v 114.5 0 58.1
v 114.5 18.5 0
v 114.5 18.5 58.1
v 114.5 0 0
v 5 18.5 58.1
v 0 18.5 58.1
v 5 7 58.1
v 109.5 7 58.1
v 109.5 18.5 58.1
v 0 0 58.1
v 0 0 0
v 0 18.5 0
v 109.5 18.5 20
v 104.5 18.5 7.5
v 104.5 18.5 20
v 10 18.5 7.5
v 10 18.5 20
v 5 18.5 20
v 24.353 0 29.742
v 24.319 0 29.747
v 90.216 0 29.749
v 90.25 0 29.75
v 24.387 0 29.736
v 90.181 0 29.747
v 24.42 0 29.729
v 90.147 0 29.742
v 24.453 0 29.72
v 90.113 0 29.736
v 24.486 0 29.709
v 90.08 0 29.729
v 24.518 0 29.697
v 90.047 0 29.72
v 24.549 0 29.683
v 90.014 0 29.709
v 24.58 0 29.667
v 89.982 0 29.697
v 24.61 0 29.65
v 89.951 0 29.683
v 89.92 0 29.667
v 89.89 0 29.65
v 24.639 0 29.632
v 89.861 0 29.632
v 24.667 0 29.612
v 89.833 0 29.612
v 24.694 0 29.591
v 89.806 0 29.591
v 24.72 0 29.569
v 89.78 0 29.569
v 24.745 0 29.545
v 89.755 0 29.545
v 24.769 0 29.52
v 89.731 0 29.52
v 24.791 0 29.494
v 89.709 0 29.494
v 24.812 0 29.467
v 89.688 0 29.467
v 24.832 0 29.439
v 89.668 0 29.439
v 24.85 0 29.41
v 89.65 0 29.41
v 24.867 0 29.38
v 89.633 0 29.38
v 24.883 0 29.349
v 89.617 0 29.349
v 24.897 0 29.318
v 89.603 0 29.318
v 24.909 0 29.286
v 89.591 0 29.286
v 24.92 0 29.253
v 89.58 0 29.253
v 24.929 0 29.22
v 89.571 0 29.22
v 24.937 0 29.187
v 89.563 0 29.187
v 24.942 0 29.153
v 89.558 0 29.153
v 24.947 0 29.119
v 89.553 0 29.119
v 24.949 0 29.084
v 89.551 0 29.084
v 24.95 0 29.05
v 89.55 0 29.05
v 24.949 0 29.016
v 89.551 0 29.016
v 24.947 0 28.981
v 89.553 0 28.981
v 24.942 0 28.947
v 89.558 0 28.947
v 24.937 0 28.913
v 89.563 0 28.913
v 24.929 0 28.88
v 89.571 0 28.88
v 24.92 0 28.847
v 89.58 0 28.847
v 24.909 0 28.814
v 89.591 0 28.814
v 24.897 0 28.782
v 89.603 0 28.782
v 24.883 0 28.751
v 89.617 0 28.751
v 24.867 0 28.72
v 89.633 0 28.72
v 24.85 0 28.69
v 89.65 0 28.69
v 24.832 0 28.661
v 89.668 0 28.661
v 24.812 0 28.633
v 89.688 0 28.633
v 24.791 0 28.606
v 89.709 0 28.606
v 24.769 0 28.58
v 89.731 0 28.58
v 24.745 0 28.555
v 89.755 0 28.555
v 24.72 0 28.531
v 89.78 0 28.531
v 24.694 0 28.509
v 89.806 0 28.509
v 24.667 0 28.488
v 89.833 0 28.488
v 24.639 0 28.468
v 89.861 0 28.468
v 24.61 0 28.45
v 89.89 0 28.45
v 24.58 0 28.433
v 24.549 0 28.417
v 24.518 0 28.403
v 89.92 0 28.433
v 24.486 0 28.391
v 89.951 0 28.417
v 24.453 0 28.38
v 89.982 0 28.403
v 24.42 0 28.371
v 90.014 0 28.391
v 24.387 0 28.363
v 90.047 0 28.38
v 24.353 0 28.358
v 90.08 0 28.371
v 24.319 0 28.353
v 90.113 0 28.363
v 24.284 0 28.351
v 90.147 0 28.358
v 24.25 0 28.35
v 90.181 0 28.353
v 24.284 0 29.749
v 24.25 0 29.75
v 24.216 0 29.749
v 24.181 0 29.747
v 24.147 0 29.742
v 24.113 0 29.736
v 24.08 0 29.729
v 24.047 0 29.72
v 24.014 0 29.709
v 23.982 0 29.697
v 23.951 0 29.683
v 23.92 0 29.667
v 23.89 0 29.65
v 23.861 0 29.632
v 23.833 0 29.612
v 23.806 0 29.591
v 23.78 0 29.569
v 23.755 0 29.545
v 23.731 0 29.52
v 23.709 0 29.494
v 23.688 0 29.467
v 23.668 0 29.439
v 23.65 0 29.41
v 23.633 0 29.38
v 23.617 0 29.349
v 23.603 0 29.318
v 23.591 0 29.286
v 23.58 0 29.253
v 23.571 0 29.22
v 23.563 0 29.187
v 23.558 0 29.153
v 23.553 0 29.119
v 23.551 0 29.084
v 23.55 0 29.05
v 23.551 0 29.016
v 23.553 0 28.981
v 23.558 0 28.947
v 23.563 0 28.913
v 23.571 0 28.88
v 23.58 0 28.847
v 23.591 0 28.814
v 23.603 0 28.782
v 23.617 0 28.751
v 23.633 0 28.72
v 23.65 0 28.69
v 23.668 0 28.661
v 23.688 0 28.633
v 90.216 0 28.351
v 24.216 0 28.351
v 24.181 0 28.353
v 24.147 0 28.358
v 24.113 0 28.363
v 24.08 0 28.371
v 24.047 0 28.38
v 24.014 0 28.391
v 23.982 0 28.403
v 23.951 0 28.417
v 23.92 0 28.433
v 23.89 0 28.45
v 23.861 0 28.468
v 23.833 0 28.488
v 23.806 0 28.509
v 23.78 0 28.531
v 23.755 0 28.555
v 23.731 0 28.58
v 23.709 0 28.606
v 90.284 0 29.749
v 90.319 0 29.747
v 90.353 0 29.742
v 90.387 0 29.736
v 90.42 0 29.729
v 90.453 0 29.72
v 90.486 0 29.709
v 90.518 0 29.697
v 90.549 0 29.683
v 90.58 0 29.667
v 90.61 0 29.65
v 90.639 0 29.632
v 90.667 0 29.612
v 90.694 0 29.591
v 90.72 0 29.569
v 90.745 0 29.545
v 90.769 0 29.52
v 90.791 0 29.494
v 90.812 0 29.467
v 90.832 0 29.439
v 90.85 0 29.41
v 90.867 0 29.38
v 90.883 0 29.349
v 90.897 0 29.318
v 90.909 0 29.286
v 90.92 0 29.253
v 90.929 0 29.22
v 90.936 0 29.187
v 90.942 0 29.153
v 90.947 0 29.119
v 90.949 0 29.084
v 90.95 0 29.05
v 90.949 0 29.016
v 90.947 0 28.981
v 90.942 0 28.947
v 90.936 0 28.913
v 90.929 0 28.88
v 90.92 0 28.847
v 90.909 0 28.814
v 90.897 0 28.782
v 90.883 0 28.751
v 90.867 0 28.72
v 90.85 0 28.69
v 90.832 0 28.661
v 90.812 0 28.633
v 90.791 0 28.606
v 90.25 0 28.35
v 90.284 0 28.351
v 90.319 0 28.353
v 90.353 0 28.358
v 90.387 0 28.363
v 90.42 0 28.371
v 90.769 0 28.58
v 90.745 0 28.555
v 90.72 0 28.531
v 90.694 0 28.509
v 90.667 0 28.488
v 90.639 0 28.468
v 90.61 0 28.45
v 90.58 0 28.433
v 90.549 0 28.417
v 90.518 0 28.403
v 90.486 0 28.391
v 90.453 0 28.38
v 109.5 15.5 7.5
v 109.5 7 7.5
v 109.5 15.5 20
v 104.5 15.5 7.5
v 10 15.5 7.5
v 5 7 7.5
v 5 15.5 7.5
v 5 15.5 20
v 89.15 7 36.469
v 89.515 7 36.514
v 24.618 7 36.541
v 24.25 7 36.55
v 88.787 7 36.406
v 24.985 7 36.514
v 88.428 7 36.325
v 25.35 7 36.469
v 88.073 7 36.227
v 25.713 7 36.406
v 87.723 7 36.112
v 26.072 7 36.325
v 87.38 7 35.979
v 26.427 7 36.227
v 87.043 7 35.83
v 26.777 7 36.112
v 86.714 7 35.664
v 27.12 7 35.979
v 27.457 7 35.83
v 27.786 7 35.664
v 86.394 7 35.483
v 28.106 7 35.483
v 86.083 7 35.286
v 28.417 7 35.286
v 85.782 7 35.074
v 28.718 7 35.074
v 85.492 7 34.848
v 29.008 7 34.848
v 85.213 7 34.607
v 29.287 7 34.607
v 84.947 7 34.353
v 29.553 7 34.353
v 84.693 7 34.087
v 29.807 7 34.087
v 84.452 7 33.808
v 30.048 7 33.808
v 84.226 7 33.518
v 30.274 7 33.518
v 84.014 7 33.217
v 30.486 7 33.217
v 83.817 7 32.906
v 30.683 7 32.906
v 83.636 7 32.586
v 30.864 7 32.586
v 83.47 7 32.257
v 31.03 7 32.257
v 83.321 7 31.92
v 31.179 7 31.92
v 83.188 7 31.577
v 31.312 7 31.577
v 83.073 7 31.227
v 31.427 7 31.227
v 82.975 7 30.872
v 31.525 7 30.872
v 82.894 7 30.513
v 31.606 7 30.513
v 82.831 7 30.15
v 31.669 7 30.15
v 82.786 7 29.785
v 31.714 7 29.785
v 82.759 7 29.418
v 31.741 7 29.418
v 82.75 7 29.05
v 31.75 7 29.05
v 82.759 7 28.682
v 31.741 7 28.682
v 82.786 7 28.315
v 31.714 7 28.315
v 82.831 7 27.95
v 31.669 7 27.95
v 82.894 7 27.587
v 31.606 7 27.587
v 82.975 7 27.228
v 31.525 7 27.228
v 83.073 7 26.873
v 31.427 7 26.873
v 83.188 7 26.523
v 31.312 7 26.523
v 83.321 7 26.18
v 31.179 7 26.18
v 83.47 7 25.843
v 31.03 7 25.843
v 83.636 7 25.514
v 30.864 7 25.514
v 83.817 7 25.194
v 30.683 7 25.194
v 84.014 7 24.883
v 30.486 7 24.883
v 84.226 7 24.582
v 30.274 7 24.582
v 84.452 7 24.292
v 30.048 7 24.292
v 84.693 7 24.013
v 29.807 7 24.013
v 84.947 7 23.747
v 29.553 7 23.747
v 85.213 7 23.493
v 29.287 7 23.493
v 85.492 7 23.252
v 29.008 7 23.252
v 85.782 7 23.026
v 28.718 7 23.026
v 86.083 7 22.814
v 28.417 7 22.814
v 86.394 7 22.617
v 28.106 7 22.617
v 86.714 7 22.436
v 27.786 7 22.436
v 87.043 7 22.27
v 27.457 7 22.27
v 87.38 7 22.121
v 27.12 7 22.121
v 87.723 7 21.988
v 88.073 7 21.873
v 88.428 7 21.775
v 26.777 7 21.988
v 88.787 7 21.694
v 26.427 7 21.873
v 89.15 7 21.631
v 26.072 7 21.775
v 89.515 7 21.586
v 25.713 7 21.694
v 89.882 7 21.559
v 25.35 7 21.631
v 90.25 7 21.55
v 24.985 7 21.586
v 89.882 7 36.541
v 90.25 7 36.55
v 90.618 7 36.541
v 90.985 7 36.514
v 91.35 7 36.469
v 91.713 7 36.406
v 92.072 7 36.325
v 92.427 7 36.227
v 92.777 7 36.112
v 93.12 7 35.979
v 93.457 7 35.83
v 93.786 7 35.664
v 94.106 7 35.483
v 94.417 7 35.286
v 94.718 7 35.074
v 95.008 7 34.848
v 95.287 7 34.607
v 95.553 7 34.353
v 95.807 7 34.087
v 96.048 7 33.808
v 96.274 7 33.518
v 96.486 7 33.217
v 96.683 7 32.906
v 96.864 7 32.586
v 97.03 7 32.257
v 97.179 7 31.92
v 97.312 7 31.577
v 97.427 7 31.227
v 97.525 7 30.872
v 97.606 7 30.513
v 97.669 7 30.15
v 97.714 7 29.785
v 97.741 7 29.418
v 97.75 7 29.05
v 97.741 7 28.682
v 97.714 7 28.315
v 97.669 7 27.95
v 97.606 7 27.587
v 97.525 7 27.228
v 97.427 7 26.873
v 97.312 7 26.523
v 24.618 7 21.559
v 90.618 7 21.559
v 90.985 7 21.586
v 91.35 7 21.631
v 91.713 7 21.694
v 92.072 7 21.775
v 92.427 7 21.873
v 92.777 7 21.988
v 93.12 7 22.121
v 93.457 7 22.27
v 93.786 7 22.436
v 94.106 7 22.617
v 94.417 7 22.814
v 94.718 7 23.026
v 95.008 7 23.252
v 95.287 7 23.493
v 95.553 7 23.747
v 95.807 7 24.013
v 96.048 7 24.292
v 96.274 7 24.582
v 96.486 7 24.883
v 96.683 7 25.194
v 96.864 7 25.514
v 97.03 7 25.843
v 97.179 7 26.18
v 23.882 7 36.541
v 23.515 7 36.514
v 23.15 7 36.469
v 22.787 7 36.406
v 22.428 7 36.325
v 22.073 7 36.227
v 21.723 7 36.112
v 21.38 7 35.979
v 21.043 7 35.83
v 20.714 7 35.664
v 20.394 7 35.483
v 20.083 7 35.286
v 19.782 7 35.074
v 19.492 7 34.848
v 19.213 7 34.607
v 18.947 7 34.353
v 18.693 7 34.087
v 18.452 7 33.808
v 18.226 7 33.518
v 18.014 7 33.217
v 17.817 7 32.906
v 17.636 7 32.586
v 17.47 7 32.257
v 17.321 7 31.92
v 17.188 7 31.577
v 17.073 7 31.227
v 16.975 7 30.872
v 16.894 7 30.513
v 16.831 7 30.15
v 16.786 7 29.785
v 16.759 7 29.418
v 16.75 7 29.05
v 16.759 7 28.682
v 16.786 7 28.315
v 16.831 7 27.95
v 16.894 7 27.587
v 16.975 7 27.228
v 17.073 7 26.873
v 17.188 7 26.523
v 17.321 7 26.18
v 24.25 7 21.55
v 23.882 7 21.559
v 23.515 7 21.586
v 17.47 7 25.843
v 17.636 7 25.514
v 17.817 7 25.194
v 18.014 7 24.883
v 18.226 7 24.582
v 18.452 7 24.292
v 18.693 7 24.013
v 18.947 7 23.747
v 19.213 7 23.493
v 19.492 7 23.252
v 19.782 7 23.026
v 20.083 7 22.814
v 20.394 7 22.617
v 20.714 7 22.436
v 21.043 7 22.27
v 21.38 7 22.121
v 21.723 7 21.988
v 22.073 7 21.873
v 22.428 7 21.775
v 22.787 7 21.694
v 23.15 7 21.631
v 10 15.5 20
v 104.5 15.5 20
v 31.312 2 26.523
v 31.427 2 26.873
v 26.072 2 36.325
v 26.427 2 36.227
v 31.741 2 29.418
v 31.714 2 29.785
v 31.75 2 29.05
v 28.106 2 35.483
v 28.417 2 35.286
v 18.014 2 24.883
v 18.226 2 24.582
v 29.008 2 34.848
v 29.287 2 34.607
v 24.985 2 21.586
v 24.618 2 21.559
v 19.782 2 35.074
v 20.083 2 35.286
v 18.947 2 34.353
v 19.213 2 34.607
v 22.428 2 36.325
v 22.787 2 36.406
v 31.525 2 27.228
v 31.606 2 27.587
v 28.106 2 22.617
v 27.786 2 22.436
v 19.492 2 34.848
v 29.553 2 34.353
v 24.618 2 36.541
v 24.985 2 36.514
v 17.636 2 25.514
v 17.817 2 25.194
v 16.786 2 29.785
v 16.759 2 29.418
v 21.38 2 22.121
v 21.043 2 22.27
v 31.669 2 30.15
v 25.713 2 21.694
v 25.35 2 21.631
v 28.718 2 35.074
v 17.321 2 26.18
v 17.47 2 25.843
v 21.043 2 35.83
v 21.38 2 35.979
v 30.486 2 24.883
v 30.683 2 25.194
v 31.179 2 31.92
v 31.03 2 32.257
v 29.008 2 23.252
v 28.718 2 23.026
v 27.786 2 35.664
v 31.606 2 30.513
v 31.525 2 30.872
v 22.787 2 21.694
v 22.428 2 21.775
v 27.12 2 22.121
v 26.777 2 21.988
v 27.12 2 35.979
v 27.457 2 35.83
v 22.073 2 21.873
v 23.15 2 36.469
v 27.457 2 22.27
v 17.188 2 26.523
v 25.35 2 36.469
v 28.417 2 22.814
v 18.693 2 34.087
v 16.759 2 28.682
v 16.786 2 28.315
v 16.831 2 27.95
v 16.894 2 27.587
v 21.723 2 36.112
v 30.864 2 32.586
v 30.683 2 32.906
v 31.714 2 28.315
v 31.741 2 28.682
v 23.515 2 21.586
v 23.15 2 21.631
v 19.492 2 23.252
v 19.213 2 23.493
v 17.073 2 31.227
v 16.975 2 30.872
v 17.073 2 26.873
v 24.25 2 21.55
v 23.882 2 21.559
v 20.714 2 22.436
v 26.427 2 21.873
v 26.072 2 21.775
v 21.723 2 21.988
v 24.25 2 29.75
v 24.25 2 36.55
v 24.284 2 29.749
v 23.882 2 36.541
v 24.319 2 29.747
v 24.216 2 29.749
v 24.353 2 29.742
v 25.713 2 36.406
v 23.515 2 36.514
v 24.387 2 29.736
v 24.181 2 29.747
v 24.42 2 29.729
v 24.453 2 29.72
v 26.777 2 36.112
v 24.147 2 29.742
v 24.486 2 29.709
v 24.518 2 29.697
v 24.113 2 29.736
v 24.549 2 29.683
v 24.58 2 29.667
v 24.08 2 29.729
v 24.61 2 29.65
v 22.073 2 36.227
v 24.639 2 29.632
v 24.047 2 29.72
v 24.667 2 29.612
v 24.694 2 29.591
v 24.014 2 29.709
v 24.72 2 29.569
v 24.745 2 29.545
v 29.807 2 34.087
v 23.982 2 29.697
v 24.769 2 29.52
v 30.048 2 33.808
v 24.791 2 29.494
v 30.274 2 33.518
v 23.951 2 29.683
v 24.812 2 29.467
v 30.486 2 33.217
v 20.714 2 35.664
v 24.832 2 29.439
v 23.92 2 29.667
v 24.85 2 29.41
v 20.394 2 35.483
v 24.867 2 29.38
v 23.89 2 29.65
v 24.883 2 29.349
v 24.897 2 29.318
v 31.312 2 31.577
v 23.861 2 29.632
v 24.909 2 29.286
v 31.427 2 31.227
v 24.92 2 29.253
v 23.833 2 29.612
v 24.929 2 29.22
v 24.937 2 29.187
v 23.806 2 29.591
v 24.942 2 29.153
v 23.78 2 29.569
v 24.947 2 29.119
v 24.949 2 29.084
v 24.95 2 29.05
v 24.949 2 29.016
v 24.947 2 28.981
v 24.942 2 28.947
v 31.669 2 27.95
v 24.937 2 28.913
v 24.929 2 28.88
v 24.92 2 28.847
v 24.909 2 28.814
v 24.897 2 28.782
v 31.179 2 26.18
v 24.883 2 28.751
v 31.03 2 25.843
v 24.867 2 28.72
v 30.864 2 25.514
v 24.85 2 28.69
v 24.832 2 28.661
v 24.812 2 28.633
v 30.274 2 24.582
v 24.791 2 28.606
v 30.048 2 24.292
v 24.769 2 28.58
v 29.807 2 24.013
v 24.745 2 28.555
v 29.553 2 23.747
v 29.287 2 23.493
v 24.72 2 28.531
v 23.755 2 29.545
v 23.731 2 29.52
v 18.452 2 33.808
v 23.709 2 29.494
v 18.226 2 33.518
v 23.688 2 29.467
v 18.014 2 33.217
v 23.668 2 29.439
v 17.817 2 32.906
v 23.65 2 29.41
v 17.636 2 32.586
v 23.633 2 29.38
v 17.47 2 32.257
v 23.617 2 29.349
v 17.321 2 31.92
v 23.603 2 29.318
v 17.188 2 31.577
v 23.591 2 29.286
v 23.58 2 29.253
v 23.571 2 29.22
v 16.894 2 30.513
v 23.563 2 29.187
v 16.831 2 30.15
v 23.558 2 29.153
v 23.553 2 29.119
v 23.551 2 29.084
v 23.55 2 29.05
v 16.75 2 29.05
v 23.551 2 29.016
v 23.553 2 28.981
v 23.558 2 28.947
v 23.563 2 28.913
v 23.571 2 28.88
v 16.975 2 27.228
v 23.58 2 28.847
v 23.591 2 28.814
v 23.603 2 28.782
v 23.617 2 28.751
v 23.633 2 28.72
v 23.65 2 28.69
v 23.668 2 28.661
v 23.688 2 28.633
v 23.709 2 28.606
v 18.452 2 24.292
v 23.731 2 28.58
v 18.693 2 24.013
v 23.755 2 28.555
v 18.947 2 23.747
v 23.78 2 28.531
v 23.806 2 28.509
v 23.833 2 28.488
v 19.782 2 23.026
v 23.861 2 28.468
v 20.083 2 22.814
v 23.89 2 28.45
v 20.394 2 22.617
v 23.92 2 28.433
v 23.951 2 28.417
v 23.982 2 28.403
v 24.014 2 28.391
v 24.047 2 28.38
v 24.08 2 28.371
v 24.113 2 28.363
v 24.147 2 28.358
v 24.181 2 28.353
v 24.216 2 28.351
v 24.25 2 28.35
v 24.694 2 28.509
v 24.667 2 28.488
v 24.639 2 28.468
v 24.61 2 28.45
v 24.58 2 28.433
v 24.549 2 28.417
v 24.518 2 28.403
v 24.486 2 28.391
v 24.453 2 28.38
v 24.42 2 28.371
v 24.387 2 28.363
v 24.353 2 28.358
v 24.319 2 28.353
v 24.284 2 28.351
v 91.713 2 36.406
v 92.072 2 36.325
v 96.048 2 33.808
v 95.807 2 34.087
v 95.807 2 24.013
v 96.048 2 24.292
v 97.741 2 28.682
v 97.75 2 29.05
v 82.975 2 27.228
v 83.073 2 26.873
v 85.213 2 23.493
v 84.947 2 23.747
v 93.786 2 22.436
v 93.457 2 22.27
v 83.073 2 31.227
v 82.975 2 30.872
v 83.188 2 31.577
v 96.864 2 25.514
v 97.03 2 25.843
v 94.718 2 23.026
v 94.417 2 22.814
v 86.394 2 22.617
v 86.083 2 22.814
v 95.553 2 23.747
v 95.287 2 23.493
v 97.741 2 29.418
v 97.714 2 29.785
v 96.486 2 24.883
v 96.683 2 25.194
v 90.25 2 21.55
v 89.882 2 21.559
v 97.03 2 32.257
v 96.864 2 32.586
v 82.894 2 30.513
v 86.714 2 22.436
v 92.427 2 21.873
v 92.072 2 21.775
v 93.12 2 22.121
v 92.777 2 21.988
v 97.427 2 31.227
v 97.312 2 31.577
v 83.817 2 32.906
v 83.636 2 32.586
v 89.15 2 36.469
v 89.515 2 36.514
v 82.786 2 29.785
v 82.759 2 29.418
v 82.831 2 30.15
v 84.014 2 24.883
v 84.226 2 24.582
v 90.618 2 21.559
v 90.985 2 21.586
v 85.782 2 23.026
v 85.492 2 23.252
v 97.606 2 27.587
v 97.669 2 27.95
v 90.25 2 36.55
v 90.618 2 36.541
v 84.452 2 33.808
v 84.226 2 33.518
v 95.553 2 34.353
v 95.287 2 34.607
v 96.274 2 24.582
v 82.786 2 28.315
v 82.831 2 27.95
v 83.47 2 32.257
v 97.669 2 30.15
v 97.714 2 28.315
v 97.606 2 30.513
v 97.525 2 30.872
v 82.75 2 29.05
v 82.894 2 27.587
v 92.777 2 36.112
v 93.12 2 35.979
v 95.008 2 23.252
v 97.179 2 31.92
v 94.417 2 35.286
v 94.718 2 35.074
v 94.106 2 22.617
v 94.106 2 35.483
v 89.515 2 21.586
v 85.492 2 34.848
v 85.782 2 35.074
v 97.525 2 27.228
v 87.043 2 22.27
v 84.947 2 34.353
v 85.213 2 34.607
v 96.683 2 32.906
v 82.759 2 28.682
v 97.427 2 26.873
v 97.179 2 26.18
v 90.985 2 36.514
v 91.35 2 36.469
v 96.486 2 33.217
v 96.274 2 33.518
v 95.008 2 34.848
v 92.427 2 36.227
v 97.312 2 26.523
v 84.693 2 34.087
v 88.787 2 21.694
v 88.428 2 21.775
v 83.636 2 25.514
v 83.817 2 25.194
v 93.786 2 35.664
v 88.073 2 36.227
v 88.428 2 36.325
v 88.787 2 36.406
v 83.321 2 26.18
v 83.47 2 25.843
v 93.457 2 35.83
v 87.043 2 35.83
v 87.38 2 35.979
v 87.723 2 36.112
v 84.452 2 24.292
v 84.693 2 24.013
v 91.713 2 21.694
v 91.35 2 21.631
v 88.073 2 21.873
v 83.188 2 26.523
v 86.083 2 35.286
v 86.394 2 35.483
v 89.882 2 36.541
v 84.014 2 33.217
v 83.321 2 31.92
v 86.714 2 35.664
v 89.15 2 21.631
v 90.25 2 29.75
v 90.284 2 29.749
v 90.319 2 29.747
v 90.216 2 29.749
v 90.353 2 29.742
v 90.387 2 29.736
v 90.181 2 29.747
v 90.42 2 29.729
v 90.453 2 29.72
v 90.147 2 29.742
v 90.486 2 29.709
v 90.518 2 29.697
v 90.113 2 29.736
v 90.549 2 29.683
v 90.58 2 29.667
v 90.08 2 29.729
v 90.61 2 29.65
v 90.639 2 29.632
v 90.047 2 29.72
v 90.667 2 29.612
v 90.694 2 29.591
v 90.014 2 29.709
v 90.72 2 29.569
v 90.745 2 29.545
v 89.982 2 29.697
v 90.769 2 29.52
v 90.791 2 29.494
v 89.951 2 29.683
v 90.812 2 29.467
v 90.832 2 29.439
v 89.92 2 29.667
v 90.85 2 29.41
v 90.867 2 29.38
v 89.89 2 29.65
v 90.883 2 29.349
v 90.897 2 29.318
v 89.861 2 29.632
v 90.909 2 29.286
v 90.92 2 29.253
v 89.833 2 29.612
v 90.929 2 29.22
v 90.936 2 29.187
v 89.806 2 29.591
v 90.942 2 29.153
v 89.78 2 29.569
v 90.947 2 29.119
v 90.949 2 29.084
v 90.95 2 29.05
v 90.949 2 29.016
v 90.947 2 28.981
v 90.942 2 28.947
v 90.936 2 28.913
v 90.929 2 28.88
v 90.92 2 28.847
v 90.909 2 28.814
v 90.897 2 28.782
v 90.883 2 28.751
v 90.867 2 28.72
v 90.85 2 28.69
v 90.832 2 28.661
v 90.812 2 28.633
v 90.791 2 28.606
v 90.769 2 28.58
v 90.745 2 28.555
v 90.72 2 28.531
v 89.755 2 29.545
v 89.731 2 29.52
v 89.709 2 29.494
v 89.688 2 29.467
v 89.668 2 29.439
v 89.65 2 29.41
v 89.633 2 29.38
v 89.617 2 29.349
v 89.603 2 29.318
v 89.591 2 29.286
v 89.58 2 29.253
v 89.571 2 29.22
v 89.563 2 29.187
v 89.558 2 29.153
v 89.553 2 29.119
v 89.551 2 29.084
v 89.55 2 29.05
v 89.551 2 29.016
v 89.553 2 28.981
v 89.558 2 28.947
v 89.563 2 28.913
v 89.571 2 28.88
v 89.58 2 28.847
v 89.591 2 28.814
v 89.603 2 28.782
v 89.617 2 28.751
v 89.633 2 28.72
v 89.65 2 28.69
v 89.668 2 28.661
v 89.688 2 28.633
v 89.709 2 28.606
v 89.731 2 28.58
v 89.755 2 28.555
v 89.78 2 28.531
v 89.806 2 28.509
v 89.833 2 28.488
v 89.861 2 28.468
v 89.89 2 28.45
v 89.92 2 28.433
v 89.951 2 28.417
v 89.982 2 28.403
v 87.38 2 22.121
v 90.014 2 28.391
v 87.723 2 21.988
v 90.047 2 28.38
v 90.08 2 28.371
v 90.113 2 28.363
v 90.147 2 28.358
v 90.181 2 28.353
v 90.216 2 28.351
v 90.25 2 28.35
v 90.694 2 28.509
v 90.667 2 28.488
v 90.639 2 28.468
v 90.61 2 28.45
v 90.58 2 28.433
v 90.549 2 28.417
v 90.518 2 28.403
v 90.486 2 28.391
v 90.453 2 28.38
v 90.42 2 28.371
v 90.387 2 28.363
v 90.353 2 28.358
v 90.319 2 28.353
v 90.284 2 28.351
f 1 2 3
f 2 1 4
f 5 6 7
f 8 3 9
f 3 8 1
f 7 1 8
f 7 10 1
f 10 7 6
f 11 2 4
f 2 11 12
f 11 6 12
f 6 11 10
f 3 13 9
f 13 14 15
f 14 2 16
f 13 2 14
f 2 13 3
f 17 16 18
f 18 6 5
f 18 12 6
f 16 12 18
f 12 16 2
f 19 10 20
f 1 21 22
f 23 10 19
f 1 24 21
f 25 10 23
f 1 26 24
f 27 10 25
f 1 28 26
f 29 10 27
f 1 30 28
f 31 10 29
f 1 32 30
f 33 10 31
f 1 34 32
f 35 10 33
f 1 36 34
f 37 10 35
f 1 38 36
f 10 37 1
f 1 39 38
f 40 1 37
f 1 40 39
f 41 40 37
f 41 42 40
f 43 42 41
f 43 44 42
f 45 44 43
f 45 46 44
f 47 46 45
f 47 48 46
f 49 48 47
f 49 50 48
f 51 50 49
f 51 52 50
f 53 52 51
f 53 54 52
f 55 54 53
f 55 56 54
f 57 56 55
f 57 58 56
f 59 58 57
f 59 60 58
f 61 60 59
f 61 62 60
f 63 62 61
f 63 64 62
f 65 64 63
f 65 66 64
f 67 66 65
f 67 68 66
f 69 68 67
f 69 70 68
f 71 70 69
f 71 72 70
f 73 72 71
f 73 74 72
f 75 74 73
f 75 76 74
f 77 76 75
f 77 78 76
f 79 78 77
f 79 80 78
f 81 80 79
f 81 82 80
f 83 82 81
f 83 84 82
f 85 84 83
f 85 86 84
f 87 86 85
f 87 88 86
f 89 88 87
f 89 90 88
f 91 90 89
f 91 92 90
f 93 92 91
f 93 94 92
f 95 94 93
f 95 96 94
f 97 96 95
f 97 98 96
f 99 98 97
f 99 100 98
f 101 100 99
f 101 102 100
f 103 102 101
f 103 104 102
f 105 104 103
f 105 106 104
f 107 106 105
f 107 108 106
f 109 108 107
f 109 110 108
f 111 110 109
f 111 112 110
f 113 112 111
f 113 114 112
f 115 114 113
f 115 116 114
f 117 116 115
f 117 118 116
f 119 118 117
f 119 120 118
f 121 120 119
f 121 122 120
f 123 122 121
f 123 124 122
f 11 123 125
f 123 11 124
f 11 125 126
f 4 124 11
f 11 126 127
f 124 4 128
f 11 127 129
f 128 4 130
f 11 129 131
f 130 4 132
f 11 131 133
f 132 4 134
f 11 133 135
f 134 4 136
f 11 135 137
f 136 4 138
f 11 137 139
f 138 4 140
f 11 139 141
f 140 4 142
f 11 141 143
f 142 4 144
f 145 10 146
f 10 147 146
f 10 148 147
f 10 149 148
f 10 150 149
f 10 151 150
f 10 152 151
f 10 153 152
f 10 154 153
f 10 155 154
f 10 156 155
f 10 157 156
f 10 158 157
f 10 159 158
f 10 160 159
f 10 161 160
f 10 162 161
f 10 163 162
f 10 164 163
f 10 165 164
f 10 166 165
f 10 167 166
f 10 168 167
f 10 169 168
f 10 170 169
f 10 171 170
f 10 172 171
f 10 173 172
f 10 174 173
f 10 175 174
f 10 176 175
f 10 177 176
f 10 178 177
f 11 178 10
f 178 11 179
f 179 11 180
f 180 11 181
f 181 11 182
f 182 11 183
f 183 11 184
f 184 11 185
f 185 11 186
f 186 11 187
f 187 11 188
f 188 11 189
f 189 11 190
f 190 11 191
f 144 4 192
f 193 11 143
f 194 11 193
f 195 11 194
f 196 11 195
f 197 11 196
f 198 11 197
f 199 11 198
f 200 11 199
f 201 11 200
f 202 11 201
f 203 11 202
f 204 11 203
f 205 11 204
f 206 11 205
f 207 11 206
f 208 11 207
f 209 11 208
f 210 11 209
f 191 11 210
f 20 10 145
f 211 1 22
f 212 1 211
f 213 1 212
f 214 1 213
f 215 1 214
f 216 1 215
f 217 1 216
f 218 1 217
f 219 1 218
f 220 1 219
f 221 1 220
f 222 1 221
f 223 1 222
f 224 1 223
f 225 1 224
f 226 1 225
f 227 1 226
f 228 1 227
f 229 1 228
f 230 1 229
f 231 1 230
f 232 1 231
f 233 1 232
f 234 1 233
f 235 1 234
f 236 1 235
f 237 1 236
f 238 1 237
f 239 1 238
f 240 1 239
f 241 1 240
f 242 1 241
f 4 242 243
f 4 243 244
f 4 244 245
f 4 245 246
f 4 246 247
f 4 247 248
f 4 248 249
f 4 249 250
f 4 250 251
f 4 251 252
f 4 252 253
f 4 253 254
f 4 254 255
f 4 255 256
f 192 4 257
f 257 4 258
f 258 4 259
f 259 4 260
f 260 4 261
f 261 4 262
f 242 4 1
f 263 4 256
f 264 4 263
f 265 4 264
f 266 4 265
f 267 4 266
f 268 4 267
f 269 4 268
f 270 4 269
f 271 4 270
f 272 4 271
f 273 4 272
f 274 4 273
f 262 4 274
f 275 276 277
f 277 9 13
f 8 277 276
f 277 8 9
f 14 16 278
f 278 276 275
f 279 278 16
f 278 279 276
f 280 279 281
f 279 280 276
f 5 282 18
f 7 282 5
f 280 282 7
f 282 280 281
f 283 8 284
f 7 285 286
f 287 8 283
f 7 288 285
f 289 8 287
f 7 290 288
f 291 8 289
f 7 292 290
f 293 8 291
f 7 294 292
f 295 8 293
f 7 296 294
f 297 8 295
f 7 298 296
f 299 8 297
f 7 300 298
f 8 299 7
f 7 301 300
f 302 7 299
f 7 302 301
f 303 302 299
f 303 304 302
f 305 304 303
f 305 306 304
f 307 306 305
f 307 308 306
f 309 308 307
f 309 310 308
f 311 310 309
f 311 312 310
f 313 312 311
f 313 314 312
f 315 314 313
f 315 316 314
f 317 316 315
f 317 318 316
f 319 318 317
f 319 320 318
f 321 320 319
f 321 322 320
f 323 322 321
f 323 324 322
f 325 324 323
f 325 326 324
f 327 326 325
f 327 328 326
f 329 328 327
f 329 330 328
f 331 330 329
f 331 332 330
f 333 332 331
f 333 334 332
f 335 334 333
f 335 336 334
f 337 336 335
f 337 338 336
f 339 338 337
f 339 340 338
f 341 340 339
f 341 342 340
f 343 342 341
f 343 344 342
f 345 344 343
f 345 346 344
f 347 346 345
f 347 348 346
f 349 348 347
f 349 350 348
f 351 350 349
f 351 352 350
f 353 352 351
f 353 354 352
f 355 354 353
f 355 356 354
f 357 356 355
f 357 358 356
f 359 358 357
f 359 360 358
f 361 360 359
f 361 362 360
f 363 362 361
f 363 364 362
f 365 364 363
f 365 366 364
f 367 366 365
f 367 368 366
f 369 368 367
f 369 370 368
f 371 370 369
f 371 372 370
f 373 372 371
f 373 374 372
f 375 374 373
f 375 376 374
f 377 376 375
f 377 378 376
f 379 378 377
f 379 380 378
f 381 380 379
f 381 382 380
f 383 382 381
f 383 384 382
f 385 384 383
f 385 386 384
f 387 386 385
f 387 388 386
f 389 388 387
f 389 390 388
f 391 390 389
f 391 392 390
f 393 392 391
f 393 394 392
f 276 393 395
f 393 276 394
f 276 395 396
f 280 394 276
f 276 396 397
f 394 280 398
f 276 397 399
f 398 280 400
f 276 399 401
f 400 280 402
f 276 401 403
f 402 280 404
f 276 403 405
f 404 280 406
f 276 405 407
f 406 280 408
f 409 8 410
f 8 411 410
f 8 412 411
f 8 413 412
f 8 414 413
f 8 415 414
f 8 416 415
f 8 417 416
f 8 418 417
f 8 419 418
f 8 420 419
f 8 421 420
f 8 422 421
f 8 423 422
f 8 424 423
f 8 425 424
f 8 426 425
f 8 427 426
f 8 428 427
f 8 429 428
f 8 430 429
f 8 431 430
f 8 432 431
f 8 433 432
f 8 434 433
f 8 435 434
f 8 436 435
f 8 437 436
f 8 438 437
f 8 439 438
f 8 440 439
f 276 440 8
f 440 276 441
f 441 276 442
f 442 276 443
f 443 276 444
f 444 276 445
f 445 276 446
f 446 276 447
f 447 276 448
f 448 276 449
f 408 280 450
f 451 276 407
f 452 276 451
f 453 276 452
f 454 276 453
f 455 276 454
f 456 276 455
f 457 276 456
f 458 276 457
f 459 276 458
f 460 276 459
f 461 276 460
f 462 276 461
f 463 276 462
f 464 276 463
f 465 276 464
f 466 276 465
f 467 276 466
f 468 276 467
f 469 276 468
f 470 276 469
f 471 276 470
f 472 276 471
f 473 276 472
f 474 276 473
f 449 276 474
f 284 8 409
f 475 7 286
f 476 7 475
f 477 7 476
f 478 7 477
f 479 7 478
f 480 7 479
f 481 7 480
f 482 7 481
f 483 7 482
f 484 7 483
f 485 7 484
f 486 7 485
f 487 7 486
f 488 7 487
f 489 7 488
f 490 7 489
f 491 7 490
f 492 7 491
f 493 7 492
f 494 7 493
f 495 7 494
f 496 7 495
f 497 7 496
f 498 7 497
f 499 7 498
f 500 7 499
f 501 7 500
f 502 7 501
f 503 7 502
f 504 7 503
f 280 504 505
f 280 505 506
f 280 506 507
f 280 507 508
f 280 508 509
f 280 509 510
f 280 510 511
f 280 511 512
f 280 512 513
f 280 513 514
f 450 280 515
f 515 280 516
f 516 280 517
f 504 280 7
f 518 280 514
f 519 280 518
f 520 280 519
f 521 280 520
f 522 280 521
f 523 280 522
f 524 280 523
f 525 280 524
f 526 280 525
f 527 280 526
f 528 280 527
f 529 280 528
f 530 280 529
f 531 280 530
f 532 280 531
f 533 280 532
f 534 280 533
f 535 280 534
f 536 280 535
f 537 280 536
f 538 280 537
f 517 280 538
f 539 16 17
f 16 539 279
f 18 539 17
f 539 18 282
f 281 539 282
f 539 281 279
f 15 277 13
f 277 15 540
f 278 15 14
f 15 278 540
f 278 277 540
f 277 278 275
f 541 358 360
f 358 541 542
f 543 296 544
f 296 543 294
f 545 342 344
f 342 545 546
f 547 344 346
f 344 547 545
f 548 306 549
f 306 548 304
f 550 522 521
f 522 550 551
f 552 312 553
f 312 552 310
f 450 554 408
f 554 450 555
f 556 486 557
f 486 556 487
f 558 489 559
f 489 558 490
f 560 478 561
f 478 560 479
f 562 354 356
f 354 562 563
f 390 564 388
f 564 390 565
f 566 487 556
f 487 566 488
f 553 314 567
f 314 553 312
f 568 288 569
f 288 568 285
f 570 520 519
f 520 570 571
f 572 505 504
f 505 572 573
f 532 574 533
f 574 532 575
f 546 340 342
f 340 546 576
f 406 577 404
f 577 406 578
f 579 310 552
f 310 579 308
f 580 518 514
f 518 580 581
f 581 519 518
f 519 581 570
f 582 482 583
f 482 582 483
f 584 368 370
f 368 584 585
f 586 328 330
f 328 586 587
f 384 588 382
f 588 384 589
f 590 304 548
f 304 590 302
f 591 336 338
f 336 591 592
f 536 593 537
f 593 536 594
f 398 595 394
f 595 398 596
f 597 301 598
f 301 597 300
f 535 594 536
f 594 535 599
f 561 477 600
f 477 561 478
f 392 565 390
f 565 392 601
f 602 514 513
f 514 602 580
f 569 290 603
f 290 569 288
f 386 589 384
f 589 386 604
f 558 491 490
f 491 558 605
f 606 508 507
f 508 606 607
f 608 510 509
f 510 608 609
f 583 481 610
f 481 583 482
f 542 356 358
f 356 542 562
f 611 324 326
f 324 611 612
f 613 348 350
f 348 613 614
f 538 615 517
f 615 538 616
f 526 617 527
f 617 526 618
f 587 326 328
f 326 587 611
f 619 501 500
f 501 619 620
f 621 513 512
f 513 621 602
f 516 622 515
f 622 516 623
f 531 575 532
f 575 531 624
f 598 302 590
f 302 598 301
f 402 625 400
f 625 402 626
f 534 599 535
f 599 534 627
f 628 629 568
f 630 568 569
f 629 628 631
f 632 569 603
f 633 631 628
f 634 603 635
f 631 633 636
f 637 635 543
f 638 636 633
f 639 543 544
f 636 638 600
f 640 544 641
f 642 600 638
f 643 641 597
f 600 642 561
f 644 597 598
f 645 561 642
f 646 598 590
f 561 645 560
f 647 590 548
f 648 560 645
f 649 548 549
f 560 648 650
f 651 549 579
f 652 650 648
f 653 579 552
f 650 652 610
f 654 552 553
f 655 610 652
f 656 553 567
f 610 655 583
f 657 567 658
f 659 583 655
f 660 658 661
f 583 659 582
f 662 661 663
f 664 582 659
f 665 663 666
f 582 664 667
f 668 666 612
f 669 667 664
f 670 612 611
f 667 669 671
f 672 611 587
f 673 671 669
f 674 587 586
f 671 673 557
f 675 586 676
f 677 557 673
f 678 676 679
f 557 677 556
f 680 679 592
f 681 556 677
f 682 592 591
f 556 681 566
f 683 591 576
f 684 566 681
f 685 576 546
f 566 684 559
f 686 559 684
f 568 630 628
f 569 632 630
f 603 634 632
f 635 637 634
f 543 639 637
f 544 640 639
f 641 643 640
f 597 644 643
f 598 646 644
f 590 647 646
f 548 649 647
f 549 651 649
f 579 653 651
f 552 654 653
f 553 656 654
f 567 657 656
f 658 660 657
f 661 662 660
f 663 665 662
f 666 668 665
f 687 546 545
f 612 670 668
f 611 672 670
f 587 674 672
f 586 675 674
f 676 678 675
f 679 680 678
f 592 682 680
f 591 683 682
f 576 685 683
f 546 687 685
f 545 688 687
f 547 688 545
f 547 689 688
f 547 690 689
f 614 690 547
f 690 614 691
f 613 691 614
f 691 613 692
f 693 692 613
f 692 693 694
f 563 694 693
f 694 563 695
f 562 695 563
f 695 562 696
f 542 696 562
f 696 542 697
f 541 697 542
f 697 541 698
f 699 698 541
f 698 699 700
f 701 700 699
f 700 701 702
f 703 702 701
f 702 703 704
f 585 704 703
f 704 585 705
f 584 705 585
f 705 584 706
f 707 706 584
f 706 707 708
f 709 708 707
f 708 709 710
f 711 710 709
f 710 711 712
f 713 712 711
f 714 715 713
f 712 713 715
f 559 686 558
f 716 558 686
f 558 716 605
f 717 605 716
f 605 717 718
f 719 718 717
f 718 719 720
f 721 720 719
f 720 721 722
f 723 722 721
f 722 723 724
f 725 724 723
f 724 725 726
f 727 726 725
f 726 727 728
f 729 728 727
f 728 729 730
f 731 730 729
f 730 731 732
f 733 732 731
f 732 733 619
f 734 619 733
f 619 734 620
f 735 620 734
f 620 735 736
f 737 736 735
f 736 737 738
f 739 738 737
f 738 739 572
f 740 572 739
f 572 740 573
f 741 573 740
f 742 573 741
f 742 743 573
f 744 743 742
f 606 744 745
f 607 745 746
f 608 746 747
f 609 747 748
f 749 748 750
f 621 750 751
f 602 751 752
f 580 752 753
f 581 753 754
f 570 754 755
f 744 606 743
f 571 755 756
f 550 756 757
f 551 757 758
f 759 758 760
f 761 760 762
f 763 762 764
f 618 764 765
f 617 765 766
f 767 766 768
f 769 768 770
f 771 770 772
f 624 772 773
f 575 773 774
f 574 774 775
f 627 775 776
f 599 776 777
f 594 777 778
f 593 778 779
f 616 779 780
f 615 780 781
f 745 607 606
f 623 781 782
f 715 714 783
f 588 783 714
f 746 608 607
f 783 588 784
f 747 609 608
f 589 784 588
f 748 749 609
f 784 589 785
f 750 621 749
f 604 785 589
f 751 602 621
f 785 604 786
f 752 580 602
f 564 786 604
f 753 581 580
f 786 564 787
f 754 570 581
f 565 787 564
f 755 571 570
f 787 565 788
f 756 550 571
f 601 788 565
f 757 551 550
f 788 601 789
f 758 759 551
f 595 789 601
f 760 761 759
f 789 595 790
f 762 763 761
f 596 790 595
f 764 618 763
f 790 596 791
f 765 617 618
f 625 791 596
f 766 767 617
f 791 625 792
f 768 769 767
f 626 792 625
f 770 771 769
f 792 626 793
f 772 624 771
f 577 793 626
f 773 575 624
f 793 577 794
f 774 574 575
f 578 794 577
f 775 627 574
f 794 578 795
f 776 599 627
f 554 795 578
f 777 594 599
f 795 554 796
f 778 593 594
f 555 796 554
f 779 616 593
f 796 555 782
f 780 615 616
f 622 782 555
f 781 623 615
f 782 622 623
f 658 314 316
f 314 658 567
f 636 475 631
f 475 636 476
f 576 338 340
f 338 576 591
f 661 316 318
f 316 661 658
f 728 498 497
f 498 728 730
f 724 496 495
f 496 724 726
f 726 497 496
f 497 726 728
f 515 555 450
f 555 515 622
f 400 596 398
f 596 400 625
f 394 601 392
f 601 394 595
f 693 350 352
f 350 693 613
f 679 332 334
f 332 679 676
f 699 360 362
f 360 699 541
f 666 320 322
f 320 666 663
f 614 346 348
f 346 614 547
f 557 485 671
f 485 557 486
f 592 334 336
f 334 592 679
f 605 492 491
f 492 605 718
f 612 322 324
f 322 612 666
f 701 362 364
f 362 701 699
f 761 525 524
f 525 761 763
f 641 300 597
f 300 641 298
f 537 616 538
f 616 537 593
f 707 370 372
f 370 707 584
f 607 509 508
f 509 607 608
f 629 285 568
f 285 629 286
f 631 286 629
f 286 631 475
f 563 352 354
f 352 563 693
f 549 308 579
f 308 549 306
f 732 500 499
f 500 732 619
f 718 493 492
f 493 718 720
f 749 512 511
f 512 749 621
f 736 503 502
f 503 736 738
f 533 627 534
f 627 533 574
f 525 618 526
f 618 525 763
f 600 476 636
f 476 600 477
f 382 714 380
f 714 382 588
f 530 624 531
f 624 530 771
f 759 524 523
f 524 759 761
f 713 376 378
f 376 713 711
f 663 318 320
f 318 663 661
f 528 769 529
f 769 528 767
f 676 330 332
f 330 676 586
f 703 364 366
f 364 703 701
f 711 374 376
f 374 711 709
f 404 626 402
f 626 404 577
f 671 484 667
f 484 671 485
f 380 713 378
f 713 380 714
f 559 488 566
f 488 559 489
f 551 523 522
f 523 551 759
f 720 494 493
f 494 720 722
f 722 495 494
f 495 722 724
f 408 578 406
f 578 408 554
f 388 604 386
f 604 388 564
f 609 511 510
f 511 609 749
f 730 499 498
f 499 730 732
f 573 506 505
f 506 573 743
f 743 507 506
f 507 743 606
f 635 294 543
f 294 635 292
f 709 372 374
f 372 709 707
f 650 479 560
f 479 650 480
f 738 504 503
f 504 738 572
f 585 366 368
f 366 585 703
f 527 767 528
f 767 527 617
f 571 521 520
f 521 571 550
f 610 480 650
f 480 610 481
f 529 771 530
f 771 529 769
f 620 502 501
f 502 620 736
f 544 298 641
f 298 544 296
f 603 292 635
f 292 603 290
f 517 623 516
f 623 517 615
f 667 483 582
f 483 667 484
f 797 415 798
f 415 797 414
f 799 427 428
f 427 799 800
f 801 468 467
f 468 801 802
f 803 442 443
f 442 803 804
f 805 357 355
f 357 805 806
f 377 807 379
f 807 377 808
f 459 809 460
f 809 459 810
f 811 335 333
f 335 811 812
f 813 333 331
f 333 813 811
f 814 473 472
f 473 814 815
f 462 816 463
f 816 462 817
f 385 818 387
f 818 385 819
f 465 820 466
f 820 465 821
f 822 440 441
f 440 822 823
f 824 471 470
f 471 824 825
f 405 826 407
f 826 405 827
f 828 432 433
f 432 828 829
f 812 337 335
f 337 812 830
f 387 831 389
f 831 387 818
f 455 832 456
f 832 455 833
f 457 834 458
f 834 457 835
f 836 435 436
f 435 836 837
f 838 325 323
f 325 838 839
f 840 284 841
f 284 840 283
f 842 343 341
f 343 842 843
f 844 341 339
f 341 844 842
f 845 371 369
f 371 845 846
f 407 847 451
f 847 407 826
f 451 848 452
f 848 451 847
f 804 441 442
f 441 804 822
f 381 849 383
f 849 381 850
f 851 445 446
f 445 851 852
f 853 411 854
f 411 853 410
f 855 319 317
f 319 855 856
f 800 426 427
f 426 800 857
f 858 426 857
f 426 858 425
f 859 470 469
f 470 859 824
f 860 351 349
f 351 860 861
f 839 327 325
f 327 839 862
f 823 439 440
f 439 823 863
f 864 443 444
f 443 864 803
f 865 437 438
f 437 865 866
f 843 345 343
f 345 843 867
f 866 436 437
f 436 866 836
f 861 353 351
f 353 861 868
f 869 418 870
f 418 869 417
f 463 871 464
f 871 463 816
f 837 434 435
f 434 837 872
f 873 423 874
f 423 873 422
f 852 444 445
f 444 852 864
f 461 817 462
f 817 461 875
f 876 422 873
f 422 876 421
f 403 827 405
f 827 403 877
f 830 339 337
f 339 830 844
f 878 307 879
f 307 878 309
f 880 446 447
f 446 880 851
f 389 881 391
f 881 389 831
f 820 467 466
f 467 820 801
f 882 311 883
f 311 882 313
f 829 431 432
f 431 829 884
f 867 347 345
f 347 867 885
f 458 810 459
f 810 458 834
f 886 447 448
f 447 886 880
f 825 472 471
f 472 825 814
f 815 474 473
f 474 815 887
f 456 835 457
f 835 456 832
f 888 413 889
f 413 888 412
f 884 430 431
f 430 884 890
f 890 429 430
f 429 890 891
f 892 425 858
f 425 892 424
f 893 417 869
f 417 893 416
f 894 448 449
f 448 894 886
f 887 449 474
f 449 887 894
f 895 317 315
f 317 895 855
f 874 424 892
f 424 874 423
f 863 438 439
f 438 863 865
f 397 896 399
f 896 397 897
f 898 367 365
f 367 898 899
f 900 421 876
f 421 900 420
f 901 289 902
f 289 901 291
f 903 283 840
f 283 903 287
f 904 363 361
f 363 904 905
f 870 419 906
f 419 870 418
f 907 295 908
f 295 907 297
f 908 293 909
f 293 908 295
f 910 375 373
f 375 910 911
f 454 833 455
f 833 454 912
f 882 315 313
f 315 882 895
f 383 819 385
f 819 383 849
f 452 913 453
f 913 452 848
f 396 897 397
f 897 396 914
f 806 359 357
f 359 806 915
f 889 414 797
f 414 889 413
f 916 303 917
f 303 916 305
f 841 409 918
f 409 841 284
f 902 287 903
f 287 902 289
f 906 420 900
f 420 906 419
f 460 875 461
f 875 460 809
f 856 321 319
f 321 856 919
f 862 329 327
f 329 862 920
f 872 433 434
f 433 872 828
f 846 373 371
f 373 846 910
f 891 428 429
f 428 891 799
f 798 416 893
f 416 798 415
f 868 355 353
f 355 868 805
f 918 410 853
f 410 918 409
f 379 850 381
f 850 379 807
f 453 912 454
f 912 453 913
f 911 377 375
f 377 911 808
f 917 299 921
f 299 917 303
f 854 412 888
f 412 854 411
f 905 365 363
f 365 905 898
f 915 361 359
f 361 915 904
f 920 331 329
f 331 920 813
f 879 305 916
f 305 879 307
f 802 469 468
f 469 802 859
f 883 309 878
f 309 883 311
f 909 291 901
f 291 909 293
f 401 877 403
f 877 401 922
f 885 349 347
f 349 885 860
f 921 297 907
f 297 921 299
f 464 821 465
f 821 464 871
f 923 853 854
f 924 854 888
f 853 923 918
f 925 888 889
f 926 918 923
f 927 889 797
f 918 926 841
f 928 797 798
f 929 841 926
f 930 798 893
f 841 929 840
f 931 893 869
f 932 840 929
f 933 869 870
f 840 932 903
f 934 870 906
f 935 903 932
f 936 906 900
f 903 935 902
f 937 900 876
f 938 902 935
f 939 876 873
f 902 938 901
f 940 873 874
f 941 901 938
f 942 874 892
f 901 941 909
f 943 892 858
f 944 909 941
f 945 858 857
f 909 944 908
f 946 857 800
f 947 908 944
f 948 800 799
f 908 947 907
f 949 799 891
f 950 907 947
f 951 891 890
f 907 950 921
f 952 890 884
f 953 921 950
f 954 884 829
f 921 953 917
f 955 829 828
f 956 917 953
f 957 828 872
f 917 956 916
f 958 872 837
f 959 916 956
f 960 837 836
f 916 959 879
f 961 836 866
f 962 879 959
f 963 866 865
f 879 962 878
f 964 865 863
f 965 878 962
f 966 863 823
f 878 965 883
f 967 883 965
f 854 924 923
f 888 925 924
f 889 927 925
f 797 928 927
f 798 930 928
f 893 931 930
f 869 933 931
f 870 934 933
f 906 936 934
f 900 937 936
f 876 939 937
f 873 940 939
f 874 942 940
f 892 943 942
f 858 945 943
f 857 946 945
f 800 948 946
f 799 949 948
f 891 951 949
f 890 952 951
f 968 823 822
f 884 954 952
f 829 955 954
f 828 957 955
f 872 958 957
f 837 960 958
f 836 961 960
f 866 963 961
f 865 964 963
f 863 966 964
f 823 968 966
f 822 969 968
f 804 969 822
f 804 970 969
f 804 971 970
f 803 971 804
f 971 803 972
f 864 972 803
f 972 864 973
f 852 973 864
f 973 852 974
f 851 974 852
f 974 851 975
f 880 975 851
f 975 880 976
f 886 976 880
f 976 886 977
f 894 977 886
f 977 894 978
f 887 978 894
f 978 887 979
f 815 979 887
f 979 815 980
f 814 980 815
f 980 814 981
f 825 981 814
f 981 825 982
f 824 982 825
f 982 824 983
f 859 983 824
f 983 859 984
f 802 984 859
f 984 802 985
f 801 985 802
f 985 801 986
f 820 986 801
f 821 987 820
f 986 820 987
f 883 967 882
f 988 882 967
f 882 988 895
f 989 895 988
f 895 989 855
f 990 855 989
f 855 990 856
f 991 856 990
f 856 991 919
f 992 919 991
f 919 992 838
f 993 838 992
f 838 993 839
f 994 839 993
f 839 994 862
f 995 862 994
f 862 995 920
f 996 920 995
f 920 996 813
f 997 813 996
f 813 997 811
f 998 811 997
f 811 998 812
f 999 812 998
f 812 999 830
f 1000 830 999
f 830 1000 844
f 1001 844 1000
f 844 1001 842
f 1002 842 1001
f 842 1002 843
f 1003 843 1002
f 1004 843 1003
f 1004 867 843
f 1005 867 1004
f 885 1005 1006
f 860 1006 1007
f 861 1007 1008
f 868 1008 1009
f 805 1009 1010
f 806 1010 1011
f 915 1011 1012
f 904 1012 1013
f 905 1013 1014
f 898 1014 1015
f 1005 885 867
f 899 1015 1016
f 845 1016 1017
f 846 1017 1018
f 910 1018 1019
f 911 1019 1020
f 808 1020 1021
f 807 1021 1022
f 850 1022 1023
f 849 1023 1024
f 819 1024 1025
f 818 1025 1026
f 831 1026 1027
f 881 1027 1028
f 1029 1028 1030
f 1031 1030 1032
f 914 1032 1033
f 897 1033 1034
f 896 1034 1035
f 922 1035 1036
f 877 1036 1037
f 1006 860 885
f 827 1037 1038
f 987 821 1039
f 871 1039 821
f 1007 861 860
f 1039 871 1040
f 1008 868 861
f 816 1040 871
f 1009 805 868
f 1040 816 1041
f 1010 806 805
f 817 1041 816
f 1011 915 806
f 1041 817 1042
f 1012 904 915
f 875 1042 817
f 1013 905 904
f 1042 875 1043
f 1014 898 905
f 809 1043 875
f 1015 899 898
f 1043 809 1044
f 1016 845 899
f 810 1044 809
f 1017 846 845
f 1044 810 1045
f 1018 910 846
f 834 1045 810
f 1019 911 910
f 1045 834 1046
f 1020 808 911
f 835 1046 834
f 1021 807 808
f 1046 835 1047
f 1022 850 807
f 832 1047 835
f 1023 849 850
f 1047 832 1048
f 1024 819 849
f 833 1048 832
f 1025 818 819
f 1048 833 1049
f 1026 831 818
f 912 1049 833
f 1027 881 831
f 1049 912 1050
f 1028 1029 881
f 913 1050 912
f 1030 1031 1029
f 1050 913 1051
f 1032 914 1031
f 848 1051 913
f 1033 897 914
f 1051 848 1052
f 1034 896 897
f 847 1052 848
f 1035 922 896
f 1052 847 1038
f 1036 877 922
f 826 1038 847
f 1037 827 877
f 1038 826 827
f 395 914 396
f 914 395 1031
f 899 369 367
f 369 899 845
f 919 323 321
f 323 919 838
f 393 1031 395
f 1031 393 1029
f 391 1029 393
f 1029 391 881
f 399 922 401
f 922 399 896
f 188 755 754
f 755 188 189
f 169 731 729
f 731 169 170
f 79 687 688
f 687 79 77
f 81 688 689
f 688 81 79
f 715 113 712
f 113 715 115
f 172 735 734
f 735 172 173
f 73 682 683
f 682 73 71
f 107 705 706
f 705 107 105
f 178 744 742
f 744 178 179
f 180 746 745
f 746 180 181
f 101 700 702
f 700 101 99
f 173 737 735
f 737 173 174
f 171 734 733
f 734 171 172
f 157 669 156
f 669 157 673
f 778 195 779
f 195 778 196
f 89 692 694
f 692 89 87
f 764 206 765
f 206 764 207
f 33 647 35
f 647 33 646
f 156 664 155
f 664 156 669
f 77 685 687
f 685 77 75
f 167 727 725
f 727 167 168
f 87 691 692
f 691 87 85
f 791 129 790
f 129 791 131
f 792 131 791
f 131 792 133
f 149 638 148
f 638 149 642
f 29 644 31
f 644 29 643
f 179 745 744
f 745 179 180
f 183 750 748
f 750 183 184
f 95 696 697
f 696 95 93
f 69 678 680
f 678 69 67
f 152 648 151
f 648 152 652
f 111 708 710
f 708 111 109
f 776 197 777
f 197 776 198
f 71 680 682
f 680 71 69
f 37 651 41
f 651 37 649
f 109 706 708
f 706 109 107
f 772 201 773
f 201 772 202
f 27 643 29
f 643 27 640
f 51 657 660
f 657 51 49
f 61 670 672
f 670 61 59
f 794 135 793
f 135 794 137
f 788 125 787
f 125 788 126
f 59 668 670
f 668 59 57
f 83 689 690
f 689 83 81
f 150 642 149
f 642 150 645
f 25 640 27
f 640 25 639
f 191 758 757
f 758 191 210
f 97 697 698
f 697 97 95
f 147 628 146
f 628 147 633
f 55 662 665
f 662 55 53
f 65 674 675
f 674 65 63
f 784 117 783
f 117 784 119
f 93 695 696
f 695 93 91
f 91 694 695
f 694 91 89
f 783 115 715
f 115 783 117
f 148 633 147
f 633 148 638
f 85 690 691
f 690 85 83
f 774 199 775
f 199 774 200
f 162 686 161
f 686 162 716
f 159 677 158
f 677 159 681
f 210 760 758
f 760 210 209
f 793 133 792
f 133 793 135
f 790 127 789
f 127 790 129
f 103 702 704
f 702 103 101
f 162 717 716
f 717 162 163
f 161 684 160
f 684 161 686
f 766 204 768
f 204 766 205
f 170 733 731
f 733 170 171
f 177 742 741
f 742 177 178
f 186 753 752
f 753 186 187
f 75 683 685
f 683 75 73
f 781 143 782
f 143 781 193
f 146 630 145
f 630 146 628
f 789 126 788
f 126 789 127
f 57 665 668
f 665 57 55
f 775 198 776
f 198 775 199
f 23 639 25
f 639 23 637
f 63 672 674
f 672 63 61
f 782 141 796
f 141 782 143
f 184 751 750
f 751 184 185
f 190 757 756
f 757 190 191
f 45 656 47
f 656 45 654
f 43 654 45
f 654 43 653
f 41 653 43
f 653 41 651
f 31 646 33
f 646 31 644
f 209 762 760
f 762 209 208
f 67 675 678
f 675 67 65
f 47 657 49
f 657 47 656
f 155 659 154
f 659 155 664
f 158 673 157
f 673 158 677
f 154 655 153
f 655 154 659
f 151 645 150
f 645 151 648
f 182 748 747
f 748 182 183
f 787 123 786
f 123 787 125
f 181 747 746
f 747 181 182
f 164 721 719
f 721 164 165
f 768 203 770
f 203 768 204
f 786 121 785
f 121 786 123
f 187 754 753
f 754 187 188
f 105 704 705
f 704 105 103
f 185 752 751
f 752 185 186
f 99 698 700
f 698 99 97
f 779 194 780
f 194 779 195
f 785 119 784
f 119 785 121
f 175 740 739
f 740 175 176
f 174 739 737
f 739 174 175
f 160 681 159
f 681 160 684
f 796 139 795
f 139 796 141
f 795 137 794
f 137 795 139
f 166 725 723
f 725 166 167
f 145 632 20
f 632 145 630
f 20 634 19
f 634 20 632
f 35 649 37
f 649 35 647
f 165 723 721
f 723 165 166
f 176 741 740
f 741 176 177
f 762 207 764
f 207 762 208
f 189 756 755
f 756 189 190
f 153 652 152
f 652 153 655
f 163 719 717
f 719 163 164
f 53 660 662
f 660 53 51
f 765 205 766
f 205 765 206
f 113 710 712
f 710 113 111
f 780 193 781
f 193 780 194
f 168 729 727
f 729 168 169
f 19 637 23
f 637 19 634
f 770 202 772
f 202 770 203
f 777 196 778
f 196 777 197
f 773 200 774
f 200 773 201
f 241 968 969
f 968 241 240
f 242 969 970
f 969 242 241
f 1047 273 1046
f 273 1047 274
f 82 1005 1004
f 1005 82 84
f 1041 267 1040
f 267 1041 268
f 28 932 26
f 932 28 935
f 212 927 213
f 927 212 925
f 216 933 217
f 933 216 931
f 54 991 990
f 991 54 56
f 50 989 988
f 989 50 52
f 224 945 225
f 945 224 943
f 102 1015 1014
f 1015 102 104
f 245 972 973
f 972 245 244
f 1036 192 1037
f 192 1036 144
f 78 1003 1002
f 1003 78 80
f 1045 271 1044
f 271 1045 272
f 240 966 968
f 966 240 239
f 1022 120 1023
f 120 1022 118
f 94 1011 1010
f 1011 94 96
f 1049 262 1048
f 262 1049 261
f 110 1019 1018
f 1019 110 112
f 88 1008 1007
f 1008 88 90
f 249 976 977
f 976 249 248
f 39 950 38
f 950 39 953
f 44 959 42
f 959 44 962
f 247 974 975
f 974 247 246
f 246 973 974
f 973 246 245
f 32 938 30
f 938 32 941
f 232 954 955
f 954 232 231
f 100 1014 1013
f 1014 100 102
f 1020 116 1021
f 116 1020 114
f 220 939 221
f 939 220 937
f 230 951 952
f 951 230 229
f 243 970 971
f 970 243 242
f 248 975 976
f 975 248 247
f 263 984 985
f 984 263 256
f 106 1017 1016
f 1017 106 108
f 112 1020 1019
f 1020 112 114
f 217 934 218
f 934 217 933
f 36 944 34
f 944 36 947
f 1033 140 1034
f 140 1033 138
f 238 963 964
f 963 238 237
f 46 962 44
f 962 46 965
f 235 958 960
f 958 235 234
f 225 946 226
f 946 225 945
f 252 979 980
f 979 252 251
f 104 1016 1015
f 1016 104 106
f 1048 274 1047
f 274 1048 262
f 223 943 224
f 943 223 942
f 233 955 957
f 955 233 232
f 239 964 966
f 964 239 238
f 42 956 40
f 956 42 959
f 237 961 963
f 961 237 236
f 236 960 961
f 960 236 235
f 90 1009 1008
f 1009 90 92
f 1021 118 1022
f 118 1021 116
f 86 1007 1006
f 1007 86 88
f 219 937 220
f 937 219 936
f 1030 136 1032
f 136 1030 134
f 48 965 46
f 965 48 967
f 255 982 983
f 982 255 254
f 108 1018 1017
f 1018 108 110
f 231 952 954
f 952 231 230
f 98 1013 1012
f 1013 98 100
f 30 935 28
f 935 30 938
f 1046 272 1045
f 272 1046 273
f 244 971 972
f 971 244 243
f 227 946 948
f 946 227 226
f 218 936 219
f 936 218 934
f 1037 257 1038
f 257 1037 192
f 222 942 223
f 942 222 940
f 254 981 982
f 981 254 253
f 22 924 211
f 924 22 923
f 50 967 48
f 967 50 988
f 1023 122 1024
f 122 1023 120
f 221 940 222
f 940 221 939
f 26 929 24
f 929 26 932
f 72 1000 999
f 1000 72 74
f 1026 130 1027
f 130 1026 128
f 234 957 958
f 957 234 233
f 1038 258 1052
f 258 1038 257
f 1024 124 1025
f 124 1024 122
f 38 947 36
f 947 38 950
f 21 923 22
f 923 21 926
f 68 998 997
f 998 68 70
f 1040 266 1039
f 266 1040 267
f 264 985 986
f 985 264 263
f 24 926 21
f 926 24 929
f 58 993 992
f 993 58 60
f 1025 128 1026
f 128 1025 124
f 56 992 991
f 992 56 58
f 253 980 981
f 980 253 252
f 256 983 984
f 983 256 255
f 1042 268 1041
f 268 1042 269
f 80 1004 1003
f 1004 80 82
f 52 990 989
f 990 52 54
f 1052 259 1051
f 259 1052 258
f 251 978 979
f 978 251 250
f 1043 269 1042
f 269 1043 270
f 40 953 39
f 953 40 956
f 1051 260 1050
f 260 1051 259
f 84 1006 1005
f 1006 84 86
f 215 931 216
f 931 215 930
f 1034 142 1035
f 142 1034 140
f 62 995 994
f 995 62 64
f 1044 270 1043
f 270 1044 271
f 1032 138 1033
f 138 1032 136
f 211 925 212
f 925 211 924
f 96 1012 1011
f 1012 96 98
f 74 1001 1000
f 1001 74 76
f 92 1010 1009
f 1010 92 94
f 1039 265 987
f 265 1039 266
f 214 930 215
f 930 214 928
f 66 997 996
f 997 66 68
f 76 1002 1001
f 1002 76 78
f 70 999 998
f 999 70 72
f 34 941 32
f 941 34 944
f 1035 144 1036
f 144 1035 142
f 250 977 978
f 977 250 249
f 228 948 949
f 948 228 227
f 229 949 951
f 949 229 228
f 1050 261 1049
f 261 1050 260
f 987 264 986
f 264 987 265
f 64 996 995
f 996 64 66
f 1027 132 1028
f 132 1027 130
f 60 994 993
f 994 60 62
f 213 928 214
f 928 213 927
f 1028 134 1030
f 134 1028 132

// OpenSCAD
// M5PaperColor landscape wall holder with thumbtack recesses
// Units: mm
//
// Device reference:
// M5Stack PaperColor product size: 70.8 x 103.9 x 8.5 mm

$fn = 128;

// --- Device and fit ---
device_w = 103.9;
device_h = 70.8;
device_d = 8.5;

fit_clearance_w = 0.6;
fit_clearance_d = 3.0;

pocket_w = device_w + fit_clearance_w;
pocket_d = device_d + fit_clearance_d;

// --- Holder body ---
side_wall = 5.0;
back_wall = 7.0;
bottom_lip = 7.5;

// Keep the same 12.7 mm exposed top edge as the M5Paper S3 holder.
top_exposed = 12.7;
top_overcut = 2.5;
eps_front = 0.2;

outer_w = pocket_w + side_wall * 2;
outer_d = back_wall + pocket_d;
outer_h = device_h - top_exposed;

cut_w = pocket_w;
cut_h = outer_h - bottom_lip + top_overcut;
cut_d = pocket_d + eps_front;

cut_x0 = side_wall;
cut_x1 = side_wall + cut_w;

// --- Front stopper tabs ---
stop_x = 5.0;
stop_y = 3.0;
stop_z = 20.0;

// --- Thumbtack recesses on the back side ---
hole_diam = 15.0;
hole_r = hole_diam / 2;
hole_depth = 5.0;

// Scaled for the landscape PaperColor width while keeping generous side margins.
hole_dx = 33.0;

pin_diam = 1.4;
pin_r = pin_diam / 2;
pin_depth = back_wall + 0.2;

module main_body() {
    difference() {
        cube([outer_w, outer_d, outer_h], center=false);

        // Front pocket. The top is intentionally over-cut to make insertion easy.
        translate([cut_x0, back_wall, bottom_lip])
            cube([cut_w, cut_d, cut_h], center=false);
    }
}

module front_stoppers() {
    translate([cut_x0, outer_d - stop_y, 0])
        cube([stop_x, stop_y, stop_z], center=false);

    translate([cut_x1 - stop_x, outer_d - stop_y, 0])
        cube([stop_x, stop_y, stop_z], center=false);
}

module thumbtack_recess(x_offset) {
    translate([outer_w / 2 + x_offset, back_wall, outer_h / 2])
        rotate([90, 0, 0])
            cylinder(h=hole_depth, r=hole_r, center=false);
}

module thumbtack_pin_hole(x_offset) {
    translate([outer_w / 2 + x_offset, back_wall, outer_h / 2])
        rotate([90, 0, 0])
            cylinder(h=pin_depth, r=pin_r, center=false);
}

difference() {
    union() {
        main_body();
        front_stoppers();
    }

    thumbtack_recess(-hole_dx);
    thumbtack_recess(hole_dx);

    thumbtack_pin_hole(-hole_dx);
    thumbtack_pin_hole(hole_dx);
}
